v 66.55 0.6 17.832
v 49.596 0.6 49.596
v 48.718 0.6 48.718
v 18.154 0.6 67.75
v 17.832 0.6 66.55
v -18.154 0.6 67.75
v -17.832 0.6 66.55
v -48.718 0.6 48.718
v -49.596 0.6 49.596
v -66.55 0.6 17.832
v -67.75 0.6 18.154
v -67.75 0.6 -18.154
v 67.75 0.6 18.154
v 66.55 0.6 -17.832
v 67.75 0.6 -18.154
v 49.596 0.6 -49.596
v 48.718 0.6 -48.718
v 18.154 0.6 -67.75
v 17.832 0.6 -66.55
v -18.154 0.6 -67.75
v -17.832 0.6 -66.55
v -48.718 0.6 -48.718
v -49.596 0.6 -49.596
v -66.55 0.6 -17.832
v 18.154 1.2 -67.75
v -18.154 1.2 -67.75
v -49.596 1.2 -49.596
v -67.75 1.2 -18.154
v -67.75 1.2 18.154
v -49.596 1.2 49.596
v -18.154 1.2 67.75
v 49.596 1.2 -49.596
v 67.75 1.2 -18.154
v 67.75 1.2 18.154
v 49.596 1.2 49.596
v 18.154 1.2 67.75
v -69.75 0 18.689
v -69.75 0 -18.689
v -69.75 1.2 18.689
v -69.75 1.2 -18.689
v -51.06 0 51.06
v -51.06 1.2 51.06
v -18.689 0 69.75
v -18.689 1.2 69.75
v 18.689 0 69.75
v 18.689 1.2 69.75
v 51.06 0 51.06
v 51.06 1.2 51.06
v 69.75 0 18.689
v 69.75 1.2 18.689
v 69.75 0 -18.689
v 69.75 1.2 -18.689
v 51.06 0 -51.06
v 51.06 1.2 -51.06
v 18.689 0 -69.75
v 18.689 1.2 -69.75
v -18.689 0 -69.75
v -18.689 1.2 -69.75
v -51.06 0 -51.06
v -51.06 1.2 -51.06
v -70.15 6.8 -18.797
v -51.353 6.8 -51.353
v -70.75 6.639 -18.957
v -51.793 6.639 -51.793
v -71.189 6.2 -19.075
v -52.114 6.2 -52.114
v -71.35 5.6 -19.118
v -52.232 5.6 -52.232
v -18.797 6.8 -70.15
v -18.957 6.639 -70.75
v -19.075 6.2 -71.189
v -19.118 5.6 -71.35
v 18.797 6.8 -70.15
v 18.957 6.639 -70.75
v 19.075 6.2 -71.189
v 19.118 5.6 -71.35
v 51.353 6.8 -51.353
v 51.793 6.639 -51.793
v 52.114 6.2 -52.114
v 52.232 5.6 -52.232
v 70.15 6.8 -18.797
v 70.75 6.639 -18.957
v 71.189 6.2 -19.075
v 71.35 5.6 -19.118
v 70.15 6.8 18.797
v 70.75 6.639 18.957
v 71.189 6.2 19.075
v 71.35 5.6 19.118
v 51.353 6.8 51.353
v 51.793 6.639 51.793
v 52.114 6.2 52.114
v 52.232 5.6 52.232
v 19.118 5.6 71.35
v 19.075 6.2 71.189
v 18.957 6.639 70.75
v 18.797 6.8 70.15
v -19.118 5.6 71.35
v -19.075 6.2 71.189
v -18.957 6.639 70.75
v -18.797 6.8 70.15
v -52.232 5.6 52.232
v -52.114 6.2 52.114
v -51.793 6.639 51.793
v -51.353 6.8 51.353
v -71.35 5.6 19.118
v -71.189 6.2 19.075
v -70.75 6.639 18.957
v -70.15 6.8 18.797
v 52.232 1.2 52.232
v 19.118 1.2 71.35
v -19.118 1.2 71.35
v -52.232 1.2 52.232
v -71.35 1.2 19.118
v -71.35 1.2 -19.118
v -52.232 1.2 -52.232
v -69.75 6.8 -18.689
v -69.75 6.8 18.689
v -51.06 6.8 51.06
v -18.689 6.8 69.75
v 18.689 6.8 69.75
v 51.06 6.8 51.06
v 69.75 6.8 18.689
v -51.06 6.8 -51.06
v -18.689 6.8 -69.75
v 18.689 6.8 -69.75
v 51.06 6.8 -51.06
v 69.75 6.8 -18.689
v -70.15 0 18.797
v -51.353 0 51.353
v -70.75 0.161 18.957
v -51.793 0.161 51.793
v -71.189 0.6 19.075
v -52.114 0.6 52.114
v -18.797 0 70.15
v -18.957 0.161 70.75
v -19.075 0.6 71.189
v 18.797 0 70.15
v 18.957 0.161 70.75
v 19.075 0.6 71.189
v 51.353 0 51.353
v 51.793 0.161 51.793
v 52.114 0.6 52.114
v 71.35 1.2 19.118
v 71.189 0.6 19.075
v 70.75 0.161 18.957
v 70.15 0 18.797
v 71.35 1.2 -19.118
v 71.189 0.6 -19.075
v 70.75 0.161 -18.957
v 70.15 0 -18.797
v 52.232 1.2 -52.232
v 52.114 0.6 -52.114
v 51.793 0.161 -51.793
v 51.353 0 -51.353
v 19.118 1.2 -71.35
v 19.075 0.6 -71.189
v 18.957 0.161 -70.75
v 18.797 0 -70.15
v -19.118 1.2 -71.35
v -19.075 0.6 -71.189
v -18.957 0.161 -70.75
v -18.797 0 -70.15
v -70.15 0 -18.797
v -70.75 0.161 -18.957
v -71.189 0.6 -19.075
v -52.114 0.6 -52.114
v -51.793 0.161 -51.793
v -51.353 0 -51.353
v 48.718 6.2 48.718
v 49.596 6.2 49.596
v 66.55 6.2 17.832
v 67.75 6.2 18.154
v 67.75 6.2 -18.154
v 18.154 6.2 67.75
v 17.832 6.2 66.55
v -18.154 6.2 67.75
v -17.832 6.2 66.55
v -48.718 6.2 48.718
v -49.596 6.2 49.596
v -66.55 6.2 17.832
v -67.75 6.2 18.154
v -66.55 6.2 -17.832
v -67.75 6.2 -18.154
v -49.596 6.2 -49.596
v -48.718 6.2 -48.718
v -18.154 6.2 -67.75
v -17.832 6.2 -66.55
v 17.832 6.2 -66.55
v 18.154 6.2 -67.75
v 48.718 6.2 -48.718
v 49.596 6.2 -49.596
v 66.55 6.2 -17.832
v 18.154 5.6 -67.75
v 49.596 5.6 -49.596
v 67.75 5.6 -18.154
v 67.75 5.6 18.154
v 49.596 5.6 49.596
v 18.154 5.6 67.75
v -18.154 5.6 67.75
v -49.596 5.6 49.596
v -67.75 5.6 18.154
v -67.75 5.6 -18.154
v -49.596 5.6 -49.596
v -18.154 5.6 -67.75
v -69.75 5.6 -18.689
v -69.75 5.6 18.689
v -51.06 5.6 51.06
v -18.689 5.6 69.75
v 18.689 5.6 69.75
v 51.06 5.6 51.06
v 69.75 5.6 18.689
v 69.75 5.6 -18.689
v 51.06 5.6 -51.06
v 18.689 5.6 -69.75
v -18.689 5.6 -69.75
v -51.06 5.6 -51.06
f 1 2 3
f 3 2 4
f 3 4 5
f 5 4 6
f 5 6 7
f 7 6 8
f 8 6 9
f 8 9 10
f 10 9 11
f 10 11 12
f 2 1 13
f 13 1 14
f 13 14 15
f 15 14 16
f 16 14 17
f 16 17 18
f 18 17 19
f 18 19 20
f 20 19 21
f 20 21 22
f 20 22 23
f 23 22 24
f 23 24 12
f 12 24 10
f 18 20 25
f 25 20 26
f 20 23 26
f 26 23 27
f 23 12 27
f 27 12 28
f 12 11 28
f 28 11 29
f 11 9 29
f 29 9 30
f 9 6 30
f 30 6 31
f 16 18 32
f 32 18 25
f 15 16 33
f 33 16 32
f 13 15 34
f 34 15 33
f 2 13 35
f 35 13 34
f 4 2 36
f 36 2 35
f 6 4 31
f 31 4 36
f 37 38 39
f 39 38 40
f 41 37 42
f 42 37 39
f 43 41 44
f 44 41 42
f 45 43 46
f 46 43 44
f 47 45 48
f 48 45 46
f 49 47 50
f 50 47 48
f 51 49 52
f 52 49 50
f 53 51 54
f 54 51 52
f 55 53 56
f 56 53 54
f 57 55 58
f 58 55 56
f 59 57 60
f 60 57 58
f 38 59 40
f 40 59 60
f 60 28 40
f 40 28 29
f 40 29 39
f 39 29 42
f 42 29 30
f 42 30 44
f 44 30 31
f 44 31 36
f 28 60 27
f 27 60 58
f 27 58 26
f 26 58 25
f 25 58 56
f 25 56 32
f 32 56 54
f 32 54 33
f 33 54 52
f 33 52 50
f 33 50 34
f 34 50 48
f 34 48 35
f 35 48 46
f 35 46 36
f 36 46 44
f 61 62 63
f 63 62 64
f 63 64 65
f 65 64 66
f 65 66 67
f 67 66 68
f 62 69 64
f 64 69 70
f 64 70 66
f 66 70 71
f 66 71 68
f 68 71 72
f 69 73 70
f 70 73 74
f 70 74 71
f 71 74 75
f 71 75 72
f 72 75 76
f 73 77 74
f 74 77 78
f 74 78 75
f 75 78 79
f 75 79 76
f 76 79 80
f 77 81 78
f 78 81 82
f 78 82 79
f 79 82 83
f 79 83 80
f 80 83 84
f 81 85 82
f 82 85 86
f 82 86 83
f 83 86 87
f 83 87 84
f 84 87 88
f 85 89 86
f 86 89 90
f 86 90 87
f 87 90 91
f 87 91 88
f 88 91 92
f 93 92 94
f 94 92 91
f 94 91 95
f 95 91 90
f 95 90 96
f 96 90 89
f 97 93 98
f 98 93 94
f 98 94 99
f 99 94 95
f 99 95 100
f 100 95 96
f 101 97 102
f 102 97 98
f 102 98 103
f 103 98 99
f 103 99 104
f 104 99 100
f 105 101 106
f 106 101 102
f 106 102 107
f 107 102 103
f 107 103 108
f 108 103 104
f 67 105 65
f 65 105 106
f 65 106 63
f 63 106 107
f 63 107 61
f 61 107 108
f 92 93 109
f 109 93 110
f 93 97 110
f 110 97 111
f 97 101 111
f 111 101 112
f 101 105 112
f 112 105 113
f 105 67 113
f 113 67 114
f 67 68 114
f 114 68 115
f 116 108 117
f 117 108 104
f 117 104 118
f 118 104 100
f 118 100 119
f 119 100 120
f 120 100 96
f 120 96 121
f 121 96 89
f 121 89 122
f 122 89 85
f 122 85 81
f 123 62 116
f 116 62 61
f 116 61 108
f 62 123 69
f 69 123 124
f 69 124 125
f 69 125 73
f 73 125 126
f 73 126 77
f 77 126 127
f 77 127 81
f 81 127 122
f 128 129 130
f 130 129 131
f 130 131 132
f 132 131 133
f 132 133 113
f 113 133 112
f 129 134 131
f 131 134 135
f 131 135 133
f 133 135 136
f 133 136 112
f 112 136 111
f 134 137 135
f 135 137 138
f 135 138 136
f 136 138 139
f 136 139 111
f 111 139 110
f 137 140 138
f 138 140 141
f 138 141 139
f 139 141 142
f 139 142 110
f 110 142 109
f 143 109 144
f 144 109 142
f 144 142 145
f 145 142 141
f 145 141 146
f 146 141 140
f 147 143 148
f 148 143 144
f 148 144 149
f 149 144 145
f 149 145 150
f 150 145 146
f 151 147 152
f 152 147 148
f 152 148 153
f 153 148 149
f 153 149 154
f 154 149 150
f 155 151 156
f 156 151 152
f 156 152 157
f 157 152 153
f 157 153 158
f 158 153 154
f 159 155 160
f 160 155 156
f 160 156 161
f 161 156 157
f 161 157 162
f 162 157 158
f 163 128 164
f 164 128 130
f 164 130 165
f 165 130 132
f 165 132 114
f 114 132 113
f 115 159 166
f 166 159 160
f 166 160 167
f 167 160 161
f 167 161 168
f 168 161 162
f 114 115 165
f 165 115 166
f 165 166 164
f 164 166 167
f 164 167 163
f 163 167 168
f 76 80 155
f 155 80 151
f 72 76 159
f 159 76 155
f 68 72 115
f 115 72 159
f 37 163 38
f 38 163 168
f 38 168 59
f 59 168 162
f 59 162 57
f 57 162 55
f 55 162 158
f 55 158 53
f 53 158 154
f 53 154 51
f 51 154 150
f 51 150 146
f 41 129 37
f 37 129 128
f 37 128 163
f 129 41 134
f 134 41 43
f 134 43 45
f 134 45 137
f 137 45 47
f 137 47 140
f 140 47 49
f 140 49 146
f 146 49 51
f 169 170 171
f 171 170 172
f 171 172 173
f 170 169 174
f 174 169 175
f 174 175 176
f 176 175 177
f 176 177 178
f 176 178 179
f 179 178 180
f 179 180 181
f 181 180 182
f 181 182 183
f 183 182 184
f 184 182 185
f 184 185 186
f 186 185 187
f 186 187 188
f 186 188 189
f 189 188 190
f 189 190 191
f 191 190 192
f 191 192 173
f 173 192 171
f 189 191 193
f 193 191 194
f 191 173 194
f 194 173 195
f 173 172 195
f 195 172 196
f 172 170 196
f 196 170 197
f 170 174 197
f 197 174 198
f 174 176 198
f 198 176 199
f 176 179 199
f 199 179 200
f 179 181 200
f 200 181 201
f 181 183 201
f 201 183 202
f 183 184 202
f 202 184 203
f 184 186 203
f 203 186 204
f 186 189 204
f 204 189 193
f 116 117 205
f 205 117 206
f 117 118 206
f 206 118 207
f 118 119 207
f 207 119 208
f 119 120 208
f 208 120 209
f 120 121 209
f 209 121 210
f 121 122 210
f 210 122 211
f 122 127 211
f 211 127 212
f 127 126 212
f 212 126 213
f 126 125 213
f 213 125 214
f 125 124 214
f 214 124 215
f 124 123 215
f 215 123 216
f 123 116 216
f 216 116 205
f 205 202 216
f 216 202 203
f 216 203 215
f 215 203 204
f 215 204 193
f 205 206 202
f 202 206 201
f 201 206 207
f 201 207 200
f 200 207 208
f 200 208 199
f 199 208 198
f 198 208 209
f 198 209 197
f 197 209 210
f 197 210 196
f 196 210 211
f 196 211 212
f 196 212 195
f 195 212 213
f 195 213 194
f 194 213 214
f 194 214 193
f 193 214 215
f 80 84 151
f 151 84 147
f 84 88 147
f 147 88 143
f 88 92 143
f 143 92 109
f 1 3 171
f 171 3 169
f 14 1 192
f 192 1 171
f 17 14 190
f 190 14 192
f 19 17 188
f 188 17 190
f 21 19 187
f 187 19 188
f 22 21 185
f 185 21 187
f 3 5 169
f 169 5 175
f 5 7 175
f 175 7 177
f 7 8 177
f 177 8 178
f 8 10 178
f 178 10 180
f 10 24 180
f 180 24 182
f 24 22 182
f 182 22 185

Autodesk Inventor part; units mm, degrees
ref_plane "YZ Plane" through (0, 0, 0) normal (1, 0, 0) x (0, 1, 0)
ref_plane "XZ Plane" through (0, 0, 0) normal (0, 1, 0) x (-1, 0, 0)
sketch "스케치1" plane through (0, 0, 0) normal (0, 1, 0) x (-1, 0, 0)
  line L0 (-49.8892, 49.8892) -> (-18.2607, 68.1499)
  line L1 (-18.2607, 68.1499) -> (18.2607, 68.1499)
  line L2 (18.2607, 68.1499) -> (49.8892, 49.8892)
  line L3 (49.8892, 49.8892) -> (68.1499, 18.2607)
  line L4 (68.1499, 18.2607) -> (68.1499, -18.2607)
  line L5 (68.1499, -18.2607) -> (49.8892, -49.8892)
  line L6 (49.8892, -49.8892) -> (18.2607, -68.1499)
  line L7 (18.2607, -68.1499) -> (-18.2607, -68.1499)
  line L8 (-18.2607, -68.1499) -> (-49.8892, -49.8892)
  line L9 (-49.8892, -49.8892) -> (-68.1499, -18.2607)
  line L10 (-68.1499, -18.2607) -> (-68.1499, 18.2607)
  line L11 (-68.1499, 18.2607) -> (-49.8892, 49.8892)
  line L12 (71.3499, -19.1182) -> (52.2318, -52.2318)
  line L13 (52.2318, -52.2318) -> (19.1182, -71.3499)
  line L14 (19.1182, -71.3499) -> (-19.1182, -71.3499)
  line L15 (-19.1182, -71.3499) -> (-52.2318, -52.2318)
  line L16 (-52.2318, -52.2318) -> (-71.3499, -19.1182)
  line L17 (-71.3499, -19.1182) -> (-71.3499, 19.1182)
  line L18 (-71.3499, 19.1182) -> (-52.2318, 52.2318)
  line L19 (-52.2318, 52.2318) -> (-19.1182, 71.3499)
  line L20 (-19.1182, 71.3499) -> (19.1182, 71.3499)
  line L21 (19.1182, 71.3499) -> (52.2318, 52.2318)
  line L22 (52.2318, 52.2318) -> (71.3499, 19.1182)
  line L23 (71.3499, 19.1182) -> (71.3499, -19.1182)
  point P0 (0, 0)
  point P1 (0, 0)
  point P2 (0, 0)
  dimension "d0" = 141.108
  dimension "d1" = 3.2
extrude "돌출1" add sketch "스케치1" along normal blind 6.8 contours L0 L1 L2 L3 L4 L5 L6 L7 L8 L9 L10 L11 | L12 L13 L14 L15 L16 L17 L18 L19 L20 L21 L22 L23
sketch "스케치2" plane through (0, 6.8, 0) normal (0, 1, 0) x (1, 0, 0)
  line L0 (-18.6894, 69.7499) -> (18.6894, 69.7499)
  line L1 (18.6894, 69.7499) -> (51.0605, 51.0605)
  line L2 (51.0605, 51.0605) -> (69.7499, 18.6894)
  line L3 (69.7499, 18.6894) -> (69.7499, -18.6894)
  line L4 (69.7499, -18.6894) -> (51.0605, -51.0605)
  line L5 (51.0605, -51.0605) -> (18.6894, -69.7499)
  line L6 (18.6894, -69.7499) -> (-18.6894, -69.7499)
  line L7 (-18.6894, -69.7499) -> (-51.0605, -51.0605)
  line L8 (-51.0605, -51.0605) -> (-69.7499, -18.6894)
  line L9 (-69.7499, -18.6894) -> (-69.7499, 18.6894)
  line L10 (-69.7499, 18.6894) -> (-51.0605, 51.0605)
  line L11 (-51.0605, 51.0605) -> (-18.6894, 69.7499)
  line L12 (-71.3499, 19.1182) -> (-71.3499, -19.1182) projected
  line L13 (18.1535, -67.7499) -> (-18.1535, -67.7499)
  line L14 (-18.1535, -67.7499) -> (-49.5964, -49.5964)
  line L15 (-49.5964, -49.5964) -> (-67.7499, -18.1535)
  line L16 (-67.7499, -18.1535) -> (-67.7499, 18.1535)
  line L17 (-67.7499, 18.1535) -> (-49.5964, 49.5964)
  line L18 (-49.5964, 49.5964) -> (-18.1535, 67.7499)
  line L19 (-18.1535, 67.7499) -> (18.1535, 67.7499)
  line L20 (18.1535, 67.7499) -> (49.5964, 49.5964)
  line L21 (49.5964, 49.5964) -> (67.7499, 18.1535)
  line L22 (67.7499, 18.1535) -> (67.7499, -18.1535)
  line L23 (67.7499, -18.1535) -> (49.5964, -49.5964)
  line L24 (49.5964, -49.5964) -> (18.1535, -67.7499)
  point P0 (0, 0)
  point P1 (0, 0)
  point P2 (0, 0)
  dimension "d4" = 1.6
  dimension "d5" = 2
extrude "돌출2" cut sketch "스케치2" against normal blind 1.2
sketch "스케치5" plane through (0, 6.8, 0) normal (0, 1, 0) x (1, 0, 0)
  line L0 (-49.5964, -49.5964) -> (-18.1535, -67.7499) projected
  line L1 (-18.1535, -67.7499) -> (18.1535, -67.7499) projected
  line L2 (18.1535, -67.7499) -> (49.5964, -49.5964) projected
  line L3 (49.5964, -49.5964) -> (67.7499, -18.1535) projected
  line L4 (67.7499, -18.1535) -> (67.7499, 18.1535) projected
  line L5 (67.7499, 18.1535) -> (49.5964, 49.5964) projected
  line L6 (49.5964, 49.5964) -> (18.1535, 67.7499) projected
  line L7 (18.1535, 67.7499) -> (-18.1535, 67.7499) projected
  line L8 (-18.1535, 67.7499) -> (-49.5964, 49.5964) projected
  line L9 (-49.5964, 49.5964) -> (-67.7499, 18.1535) projected
  line L10 (-67.7499, 18.1535) -> (-67.7499, -18.1535) projected
  line L11 (-67.7499, -18.1535) -> (-49.5964, -49.5964) projected
  point P0 (0, 0)
extrude "돌출5" cut sketch "스케치5" against normal blind 0.6
fillet "모깎기1" radius 1.2 24 edges at (61.7909, 0, 35.675) (61.7909, 6.8, 35.675) (71.3499, 6.8, 0) (71.3499, 0, 0) (61.7909, 6.8, -35.675) (61.7909, 0, -35.675) (35.675, 6.8, -61.7909) (35.675, 0, -61.7909) (0, 0, -71.3499) (0, 6.8, -71.3499) (-35.675, 6.8, -61.7909) (-35.675, 0, -61.7909) (-61.7909, 0, -35.675) (-61.7909, 6.8, -35.675) (-71.3499, 0, 0) (-71.3499, 6.8, 0) (-61.7909, 0, 35.675) (-61.7909, 6.8, 35.675) (-35.675, 0, 61.7909) (-35.675, 6.8, 61.7909) (0, 0, 71.3499) (0, 6.8, 71.3499) (35.675, 0, 61.7909) (35.675, 6.8, 61.7909)
ref_plane "작업 평면1" through (0, 3.4, 0) normal (0, -1, 0) x (1, 0, 0)
mirror "미러1" about plane through (0, 3.4, 0) normal (0, -1, 0) of "돌출5", "돌출2"
sketch "스케치9" plane through (0, 6.2, 0) normal (0, 1, 0) x (1, 0, 0)
  line L0 (-17.832, -66.5499) -> (-48.7179, -48.7179)
  line L1 (-48.7179, -48.7179) -> (-66.5499, -17.832)
  line L2 (-66.5499, -17.832) -> (-66.5499, 17.832)
  line L3 (-66.5499, 17.832) -> (-48.7179, 48.7179)
  line L4 (-48.7179, 48.7179) -> (-17.832, 66.5499)
  line L5 (-17.832, 66.5499) -> (17.832, 66.5499)
  line L6 (17.832, 66.5499) -> (48.7179, 48.7179)
  line L7 (48.7179, 48.7179) -> (66.5499, 17.832)
  line L8 (66.5499, 17.832) -> (66.5499, -17.832)
  line L9 (66.5499, -17.832) -> (48.7179, -48.7179)
  line L10 (48.7179, -48.7179) -> (17.832, -66.5499)
  line L11 (17.832, -66.5499) -> (-17.832, -66.5499)
  line L12 (18.1535, -67.7499) -> (-18.1535, -67.7499) projected
  point P0 (0, 0)
  point P1 (0, 0)
  dimension "d37" = 1.2
extrude "돌출9" cut sketch "스케치9" against normal blind 10
properties part number "(x2)_POSPA_Large_Bottom"
